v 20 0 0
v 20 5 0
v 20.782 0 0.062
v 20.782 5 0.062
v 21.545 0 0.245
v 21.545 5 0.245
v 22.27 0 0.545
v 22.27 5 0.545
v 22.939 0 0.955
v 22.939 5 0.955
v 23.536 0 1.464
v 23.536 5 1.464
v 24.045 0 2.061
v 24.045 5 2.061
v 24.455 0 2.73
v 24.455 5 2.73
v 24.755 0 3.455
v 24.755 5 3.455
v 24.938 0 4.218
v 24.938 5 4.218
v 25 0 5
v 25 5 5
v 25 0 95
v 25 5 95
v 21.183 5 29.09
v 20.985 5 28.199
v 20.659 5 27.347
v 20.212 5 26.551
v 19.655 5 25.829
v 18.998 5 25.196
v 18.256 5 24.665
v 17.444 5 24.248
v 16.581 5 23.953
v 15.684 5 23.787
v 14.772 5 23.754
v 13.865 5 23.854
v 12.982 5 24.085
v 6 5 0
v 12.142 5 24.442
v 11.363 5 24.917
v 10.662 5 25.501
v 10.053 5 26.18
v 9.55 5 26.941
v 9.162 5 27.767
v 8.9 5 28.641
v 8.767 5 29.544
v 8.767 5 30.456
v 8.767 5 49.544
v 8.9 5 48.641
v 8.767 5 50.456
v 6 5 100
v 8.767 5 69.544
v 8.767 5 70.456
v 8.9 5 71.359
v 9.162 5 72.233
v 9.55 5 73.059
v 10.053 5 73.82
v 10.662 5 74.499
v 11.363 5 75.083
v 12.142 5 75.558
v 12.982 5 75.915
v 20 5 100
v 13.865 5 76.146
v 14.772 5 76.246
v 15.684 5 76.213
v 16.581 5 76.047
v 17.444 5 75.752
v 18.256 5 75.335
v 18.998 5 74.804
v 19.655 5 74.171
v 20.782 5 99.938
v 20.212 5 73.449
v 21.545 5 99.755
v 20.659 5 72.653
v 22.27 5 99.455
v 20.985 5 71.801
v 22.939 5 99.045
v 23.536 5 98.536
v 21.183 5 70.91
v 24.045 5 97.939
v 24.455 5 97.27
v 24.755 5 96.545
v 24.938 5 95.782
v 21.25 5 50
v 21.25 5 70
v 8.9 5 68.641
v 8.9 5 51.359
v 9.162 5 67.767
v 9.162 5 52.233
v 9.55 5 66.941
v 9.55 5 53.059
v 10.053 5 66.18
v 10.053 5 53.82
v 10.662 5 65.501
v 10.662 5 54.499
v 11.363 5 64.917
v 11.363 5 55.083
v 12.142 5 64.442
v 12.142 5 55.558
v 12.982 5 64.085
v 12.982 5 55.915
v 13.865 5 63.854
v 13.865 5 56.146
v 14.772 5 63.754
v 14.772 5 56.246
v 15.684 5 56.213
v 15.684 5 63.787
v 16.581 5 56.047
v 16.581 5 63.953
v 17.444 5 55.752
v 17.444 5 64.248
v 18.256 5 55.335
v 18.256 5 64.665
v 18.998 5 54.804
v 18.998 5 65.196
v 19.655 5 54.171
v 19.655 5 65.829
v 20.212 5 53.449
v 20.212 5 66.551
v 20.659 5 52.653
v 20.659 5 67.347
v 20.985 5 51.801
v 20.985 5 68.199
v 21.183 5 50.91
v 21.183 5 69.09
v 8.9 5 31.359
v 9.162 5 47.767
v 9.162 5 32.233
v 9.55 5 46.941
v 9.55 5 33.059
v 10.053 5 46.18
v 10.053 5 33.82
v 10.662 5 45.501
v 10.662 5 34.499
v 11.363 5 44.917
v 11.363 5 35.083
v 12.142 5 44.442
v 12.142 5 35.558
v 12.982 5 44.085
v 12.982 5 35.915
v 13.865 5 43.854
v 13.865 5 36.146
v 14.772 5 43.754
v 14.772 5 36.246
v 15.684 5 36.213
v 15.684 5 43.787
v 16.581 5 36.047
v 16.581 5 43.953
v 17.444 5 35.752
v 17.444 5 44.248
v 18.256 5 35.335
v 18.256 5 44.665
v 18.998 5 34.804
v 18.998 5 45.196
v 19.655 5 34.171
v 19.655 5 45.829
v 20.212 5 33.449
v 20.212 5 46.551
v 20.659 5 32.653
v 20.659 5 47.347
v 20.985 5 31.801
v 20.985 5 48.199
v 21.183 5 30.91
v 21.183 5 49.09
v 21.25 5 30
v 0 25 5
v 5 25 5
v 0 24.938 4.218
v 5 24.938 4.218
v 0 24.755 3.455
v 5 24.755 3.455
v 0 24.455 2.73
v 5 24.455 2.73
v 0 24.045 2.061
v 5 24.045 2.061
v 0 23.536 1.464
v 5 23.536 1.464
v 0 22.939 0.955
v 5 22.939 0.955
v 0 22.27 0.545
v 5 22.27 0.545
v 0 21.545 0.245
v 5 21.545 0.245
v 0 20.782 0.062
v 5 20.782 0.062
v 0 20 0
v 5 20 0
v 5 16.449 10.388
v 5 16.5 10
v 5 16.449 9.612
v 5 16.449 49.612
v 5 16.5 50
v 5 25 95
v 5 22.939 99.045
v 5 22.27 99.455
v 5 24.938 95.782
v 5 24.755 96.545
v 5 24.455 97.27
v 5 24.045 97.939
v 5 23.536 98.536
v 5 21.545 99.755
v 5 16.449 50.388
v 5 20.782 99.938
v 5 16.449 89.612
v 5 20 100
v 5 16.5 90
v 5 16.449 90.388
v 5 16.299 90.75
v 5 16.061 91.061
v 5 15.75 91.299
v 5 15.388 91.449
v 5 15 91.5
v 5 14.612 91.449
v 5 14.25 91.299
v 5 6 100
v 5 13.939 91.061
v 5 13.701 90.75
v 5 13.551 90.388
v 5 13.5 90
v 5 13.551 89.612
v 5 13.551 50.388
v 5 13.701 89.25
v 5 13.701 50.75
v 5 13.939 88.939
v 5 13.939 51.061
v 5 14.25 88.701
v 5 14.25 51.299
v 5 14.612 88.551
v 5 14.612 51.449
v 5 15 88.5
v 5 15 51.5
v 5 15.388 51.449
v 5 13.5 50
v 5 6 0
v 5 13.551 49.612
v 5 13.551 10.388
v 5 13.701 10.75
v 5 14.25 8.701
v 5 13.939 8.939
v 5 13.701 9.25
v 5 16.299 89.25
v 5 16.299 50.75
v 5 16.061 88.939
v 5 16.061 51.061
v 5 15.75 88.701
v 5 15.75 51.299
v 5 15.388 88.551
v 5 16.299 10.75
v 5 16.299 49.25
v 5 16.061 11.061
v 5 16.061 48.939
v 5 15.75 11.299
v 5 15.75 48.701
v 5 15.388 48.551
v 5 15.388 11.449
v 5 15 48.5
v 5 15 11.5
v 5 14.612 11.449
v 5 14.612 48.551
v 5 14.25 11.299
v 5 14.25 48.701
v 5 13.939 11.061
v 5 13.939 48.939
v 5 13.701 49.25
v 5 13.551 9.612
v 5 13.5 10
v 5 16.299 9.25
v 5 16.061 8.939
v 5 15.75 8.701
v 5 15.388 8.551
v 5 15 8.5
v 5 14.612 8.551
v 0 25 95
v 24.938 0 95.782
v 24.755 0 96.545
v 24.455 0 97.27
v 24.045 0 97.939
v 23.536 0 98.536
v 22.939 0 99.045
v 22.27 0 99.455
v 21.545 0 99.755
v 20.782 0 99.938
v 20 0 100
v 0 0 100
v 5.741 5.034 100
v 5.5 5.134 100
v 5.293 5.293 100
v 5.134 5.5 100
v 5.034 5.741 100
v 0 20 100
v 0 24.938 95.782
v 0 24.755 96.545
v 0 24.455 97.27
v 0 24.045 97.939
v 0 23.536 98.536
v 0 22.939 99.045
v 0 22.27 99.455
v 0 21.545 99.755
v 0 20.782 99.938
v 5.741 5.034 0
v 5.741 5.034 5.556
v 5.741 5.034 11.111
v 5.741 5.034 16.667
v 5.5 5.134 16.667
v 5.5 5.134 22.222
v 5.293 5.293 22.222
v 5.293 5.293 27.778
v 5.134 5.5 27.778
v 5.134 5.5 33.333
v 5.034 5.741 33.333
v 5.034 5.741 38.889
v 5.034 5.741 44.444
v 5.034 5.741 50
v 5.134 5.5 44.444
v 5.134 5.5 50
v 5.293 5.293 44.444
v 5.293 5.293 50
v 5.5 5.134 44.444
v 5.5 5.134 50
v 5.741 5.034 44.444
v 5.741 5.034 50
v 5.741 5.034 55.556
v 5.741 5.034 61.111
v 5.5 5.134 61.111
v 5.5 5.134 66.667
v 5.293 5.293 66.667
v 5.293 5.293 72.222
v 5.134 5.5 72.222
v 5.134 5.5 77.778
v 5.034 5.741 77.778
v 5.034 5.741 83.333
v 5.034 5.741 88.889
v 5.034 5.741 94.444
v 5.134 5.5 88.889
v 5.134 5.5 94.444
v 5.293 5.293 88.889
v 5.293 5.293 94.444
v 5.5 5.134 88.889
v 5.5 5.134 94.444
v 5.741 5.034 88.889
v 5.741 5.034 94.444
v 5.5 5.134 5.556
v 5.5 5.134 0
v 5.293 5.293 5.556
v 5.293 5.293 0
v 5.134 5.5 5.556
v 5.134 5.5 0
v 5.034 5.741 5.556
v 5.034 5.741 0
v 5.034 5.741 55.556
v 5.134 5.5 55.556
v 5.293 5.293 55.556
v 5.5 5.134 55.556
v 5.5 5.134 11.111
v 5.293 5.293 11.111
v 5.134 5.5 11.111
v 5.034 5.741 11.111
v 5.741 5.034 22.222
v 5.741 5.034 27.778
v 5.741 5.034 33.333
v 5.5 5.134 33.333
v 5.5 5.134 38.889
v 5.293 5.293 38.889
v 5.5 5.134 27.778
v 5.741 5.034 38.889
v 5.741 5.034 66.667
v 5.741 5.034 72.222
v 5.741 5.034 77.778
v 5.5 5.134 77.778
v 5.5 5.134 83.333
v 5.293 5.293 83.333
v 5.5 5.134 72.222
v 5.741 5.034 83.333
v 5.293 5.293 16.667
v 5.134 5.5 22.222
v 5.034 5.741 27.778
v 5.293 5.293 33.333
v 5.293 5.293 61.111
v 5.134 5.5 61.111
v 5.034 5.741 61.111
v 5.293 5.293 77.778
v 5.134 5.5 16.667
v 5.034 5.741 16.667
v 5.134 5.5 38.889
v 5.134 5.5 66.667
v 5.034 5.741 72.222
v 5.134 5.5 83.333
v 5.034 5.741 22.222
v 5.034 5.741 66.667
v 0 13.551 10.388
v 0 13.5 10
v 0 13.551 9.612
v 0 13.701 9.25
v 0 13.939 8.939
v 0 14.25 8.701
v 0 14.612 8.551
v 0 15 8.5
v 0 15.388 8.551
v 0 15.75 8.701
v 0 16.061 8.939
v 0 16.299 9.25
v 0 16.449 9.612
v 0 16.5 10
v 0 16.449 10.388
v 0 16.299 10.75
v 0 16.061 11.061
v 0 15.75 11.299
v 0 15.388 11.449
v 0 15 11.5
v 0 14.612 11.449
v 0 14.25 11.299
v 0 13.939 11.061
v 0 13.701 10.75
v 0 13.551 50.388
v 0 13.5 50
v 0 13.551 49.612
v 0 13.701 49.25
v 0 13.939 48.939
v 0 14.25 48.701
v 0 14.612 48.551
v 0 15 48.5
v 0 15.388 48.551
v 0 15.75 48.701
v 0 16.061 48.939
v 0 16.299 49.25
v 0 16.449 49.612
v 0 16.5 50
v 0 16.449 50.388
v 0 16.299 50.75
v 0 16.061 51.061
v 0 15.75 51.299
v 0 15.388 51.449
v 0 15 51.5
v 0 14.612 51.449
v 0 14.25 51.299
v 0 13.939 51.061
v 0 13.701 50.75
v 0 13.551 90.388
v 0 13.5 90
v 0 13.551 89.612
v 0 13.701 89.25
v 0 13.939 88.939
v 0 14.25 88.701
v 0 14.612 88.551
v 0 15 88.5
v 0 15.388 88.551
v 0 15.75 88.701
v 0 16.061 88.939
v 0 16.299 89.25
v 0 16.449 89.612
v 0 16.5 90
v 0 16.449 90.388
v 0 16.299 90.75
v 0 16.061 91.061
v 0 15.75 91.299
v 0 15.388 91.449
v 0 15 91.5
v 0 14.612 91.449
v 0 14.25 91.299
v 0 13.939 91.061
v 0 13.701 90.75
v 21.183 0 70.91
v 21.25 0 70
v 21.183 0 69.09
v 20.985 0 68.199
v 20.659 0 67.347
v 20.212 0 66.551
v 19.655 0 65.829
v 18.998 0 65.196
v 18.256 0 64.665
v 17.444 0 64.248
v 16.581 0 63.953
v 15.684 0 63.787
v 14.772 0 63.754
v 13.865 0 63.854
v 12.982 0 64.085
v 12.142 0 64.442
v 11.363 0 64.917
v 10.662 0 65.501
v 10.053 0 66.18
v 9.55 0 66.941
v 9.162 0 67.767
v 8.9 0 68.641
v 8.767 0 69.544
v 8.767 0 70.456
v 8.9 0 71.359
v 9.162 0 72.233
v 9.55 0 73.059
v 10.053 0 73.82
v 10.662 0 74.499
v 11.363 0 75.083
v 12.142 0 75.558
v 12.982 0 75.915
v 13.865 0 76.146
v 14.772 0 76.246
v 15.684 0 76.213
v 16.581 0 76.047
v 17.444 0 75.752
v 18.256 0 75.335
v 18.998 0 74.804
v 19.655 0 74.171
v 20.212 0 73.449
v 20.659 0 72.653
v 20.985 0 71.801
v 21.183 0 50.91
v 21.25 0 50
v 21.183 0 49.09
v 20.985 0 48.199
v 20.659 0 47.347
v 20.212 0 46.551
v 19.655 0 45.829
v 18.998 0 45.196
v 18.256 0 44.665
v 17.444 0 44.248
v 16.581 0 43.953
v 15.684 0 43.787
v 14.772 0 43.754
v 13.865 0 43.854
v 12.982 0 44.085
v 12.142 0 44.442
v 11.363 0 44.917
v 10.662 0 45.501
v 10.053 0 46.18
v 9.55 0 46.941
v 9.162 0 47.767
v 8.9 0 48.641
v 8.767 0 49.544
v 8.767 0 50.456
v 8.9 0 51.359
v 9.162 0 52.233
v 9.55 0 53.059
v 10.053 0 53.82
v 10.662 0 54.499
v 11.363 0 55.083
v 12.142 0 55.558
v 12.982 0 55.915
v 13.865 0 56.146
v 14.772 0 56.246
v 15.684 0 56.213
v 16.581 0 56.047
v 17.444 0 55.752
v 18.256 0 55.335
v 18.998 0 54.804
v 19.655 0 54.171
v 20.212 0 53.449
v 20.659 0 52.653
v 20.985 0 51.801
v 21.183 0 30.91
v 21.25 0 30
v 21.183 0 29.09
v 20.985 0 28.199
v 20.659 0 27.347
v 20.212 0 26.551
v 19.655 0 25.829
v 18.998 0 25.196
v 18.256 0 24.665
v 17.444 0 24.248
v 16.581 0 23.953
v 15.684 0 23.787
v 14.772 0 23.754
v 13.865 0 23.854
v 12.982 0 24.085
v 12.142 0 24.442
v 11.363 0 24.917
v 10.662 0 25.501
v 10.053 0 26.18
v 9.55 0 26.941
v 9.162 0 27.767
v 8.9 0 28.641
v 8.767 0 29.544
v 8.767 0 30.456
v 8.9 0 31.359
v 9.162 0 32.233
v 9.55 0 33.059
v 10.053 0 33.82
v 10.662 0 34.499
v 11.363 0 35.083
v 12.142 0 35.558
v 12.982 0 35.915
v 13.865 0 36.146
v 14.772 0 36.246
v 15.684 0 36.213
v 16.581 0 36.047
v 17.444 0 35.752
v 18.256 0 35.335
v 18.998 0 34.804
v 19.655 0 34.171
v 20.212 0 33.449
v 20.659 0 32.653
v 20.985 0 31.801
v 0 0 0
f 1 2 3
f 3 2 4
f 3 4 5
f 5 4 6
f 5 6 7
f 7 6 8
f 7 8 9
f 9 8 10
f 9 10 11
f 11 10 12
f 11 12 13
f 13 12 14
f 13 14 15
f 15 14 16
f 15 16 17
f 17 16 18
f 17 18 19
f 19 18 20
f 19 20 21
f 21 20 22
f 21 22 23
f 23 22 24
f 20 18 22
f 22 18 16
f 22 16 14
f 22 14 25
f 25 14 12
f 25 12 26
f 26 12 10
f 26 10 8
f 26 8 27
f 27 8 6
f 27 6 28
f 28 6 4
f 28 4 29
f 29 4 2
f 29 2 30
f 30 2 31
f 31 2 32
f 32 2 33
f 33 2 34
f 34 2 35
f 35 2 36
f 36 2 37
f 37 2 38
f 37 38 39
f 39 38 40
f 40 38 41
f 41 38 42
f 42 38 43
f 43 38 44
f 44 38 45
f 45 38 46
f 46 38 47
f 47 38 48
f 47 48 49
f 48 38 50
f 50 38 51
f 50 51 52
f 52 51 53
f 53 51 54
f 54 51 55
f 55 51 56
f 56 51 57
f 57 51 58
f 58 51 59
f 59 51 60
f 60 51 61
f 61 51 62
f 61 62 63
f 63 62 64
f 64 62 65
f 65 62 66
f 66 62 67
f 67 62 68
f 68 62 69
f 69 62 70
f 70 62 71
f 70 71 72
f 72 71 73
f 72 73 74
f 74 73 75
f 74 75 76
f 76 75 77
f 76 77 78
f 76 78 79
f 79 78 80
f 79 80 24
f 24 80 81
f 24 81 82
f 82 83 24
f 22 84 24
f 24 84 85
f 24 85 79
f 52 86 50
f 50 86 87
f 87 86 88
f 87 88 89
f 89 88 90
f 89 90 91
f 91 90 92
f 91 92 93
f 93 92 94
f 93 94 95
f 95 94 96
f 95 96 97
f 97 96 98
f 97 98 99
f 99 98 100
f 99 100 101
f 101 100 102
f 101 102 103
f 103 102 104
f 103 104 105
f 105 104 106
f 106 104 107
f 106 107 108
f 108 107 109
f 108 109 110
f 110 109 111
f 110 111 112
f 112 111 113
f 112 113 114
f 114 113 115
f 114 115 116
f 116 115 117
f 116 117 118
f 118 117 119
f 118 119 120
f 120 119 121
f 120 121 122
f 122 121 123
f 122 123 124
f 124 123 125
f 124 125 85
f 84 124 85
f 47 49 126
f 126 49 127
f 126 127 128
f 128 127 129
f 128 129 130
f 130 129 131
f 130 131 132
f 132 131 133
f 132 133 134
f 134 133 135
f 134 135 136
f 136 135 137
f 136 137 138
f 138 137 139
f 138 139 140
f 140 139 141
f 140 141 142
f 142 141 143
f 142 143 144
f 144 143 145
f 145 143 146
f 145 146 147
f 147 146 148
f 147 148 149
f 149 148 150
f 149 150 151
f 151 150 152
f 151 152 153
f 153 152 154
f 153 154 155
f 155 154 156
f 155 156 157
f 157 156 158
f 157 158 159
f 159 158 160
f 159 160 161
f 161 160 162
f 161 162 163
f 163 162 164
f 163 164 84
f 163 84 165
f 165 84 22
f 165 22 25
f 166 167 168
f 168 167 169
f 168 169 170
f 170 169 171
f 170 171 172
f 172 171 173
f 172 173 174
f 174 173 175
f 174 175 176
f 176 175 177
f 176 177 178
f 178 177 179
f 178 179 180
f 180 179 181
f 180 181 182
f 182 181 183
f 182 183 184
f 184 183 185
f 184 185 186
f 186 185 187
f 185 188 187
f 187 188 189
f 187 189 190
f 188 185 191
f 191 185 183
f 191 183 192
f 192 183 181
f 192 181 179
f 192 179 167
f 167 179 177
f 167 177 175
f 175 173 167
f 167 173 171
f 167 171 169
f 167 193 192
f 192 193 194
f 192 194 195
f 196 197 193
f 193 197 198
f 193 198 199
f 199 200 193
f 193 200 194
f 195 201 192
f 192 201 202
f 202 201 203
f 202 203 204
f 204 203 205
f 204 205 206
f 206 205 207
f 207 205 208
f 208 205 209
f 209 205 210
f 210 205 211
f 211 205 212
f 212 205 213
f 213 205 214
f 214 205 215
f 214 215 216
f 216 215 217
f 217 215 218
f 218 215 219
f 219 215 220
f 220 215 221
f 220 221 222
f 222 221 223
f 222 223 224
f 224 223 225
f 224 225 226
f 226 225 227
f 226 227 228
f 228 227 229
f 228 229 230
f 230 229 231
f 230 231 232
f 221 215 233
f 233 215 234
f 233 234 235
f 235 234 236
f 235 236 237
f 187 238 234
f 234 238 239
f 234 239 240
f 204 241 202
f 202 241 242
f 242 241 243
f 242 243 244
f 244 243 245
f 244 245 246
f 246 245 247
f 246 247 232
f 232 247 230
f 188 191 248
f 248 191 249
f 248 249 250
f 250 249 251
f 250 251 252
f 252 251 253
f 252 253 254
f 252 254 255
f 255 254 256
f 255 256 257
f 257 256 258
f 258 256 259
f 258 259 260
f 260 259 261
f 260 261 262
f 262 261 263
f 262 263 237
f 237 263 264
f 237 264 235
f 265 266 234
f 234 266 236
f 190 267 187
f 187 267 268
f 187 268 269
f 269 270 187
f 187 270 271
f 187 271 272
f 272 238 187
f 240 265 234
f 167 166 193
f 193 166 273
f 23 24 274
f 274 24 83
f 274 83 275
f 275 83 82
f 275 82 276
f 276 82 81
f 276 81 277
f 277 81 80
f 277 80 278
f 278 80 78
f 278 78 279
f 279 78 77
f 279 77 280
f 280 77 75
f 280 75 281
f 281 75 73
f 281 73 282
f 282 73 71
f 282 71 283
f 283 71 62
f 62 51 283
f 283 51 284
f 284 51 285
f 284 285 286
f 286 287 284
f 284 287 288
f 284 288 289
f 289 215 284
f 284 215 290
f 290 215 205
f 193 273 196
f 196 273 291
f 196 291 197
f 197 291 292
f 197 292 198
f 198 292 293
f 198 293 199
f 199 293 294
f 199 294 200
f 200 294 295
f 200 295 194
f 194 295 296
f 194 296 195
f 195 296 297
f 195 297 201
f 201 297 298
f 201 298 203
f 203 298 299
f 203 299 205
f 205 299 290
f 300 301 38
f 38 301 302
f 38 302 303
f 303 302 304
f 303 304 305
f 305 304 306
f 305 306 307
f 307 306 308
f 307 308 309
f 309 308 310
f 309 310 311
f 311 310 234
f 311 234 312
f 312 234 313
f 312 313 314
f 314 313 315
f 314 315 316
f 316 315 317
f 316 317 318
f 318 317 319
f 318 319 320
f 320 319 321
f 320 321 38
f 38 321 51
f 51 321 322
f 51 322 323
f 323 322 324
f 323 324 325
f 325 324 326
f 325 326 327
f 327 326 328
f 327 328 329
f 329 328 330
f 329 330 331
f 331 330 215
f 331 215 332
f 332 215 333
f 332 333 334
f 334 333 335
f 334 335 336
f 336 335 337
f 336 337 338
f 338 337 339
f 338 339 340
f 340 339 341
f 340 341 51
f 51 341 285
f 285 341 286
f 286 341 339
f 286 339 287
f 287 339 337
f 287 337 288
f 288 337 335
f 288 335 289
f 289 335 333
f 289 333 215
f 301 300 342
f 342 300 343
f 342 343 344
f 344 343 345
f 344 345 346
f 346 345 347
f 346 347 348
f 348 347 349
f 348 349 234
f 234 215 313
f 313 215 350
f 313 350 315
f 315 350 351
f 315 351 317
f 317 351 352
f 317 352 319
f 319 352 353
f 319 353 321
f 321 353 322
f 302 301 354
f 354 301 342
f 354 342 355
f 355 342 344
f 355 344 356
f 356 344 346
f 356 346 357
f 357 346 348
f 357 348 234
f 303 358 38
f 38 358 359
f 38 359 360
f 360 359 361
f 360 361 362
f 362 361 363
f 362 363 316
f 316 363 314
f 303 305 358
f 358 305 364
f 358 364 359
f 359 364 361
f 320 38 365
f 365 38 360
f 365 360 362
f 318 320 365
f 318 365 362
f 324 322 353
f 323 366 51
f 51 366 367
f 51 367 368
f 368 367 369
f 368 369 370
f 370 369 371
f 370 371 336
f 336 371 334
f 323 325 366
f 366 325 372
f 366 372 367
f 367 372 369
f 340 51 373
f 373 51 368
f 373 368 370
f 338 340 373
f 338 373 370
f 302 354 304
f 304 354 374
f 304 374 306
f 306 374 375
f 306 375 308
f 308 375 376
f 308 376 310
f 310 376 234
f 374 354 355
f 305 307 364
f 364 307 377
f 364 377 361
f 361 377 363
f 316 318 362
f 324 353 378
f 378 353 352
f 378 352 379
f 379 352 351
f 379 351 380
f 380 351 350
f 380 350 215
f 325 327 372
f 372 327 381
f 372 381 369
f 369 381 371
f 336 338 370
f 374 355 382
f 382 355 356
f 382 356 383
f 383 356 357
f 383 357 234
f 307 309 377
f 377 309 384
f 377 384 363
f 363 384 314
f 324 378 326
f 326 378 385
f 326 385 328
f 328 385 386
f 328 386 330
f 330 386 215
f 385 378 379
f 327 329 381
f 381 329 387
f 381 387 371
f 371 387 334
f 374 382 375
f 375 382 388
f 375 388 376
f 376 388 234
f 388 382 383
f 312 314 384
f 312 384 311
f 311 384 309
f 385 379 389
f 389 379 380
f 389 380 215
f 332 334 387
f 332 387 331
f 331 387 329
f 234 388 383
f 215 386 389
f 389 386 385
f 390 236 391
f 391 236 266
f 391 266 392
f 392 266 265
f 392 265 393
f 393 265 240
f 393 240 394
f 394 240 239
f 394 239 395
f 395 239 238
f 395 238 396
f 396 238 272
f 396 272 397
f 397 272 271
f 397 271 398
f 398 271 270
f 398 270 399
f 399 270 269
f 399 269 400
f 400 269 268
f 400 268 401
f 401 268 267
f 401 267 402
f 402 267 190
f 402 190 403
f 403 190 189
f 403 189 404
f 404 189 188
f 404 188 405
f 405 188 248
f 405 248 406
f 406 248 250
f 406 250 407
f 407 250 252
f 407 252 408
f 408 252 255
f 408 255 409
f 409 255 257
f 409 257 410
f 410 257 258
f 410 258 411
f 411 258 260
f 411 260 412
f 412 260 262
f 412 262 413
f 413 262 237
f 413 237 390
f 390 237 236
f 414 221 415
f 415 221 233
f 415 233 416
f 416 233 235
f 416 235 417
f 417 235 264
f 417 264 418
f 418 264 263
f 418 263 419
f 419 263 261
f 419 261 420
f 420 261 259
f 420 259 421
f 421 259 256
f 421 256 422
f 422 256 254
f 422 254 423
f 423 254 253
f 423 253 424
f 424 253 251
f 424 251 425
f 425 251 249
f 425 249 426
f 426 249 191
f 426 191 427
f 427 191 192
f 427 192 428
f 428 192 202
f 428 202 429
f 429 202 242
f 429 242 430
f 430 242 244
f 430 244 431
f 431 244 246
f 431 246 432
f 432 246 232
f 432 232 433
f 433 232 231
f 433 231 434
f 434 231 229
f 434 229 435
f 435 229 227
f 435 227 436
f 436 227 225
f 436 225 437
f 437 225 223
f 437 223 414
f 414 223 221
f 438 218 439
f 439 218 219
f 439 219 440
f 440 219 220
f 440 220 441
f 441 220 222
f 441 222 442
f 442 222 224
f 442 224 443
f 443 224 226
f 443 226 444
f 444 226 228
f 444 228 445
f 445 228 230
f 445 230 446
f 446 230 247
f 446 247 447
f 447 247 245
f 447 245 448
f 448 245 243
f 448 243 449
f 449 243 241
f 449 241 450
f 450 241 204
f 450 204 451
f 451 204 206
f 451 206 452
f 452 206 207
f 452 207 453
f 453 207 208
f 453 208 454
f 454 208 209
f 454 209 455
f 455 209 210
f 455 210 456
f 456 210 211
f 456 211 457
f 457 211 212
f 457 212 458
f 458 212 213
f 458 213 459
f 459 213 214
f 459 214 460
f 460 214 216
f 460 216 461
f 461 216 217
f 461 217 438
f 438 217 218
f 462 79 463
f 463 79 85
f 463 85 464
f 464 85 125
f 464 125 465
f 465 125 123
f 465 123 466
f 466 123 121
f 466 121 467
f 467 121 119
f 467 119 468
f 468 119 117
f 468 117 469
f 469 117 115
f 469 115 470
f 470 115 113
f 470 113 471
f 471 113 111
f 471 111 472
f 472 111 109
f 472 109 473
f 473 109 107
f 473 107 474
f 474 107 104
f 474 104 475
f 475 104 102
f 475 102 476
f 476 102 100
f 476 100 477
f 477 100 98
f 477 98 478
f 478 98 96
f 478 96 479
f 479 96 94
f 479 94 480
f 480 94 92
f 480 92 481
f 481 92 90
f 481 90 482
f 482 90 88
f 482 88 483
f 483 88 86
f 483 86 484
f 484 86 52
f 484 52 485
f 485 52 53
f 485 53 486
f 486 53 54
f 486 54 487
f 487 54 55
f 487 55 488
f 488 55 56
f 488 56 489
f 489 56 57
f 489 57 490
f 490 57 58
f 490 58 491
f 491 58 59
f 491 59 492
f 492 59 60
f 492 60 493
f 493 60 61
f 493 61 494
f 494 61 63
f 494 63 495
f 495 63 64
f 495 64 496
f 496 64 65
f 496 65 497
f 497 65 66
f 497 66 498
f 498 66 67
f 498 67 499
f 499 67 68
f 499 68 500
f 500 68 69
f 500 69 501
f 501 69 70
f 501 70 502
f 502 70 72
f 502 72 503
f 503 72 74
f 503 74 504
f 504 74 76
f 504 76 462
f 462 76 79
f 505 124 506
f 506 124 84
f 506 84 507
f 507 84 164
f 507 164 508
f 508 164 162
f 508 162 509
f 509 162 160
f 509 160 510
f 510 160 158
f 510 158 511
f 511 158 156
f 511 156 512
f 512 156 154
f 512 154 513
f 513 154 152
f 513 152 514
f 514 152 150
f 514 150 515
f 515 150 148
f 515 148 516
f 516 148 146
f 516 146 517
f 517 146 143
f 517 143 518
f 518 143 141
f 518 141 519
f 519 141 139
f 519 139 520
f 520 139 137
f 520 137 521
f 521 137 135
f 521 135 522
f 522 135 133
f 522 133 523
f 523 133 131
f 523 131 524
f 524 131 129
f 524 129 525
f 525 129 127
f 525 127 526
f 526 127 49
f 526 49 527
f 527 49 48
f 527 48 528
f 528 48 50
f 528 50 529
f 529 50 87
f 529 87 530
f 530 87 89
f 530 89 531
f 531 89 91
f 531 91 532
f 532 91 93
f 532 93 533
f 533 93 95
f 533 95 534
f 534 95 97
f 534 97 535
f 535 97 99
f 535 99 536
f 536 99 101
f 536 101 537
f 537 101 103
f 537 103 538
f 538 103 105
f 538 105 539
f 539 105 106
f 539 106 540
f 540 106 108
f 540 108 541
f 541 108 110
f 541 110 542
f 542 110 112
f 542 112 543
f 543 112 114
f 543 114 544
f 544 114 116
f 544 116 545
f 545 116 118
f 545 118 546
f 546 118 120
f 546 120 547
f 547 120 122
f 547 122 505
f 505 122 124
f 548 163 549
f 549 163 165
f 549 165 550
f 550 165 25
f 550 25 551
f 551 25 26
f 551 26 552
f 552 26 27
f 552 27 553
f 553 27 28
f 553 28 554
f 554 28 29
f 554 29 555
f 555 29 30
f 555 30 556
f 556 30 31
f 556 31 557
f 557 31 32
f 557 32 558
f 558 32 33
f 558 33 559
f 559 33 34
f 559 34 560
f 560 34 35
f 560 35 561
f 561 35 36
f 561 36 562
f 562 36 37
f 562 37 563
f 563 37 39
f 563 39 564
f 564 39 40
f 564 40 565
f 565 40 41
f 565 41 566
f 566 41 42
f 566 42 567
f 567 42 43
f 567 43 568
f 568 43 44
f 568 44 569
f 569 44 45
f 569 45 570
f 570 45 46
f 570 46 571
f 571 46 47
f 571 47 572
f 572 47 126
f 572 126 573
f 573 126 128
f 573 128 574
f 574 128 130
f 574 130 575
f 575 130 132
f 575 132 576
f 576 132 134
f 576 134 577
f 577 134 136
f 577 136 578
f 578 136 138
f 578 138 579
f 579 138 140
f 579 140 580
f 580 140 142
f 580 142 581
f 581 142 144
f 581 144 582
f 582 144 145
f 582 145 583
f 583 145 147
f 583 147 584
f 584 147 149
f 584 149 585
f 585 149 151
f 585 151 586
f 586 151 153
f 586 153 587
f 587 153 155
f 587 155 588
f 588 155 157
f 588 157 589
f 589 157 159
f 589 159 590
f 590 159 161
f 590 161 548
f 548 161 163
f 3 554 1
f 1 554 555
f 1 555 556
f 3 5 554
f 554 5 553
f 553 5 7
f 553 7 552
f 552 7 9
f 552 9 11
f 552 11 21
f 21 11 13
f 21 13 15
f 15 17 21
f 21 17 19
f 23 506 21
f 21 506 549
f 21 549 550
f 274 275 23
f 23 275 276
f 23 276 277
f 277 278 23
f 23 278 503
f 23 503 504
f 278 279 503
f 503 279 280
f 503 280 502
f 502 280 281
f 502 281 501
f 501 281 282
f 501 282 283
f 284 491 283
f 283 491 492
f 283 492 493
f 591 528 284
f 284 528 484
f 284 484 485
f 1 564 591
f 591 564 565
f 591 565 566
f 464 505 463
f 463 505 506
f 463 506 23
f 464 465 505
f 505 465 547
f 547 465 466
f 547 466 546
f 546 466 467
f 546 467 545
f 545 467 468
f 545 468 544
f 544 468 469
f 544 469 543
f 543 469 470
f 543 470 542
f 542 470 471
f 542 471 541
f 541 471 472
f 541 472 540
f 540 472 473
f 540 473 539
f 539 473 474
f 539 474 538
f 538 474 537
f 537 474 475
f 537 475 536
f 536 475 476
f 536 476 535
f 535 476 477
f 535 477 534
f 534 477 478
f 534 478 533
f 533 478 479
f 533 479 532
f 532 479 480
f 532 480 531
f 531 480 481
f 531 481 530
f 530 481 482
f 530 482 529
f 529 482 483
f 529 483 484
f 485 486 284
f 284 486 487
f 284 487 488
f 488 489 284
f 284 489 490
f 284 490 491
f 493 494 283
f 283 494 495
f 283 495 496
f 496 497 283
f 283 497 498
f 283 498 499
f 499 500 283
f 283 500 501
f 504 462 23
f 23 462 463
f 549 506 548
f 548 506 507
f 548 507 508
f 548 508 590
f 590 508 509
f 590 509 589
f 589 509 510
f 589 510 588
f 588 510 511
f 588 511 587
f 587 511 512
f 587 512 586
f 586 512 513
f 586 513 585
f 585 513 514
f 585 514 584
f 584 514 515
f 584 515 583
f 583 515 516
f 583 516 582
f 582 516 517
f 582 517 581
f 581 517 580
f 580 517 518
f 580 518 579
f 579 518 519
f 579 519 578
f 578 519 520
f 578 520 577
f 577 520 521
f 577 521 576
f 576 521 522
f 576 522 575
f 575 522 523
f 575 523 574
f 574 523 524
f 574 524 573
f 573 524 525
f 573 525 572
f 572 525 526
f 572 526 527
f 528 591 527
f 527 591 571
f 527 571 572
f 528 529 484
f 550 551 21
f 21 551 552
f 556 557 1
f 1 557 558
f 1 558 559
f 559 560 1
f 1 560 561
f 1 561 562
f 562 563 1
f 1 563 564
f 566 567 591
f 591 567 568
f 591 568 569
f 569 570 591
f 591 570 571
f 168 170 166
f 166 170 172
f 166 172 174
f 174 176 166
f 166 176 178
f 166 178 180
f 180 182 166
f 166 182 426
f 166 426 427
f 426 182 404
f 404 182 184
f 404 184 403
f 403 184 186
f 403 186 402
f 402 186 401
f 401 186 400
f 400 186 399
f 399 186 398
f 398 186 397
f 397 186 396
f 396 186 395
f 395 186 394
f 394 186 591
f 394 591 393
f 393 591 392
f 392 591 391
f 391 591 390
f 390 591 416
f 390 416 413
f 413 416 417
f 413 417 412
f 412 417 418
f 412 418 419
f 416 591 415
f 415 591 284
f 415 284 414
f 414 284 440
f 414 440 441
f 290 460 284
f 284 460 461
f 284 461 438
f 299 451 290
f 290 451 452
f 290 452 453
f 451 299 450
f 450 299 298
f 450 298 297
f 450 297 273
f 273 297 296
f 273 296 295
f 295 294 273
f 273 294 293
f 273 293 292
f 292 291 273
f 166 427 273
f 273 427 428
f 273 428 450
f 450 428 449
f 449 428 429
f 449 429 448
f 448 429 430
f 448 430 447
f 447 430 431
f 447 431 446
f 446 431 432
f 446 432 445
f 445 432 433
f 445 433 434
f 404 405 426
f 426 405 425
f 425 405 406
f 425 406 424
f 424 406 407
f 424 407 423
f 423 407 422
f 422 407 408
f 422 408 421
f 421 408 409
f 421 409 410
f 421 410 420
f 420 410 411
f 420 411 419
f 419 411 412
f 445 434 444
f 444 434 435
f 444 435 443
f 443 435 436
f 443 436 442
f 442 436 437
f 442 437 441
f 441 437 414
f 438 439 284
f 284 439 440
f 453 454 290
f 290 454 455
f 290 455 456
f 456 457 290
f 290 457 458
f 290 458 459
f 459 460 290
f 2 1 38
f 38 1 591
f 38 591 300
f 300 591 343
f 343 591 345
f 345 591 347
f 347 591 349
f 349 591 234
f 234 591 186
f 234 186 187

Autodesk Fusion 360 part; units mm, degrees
sketch "Sketch1" plane through (0, 0, 0) normal (0, 0, 1) x (1, 0, 0)
  line L0 (0, 25) -> (5, 25)
  line L1 (5, 25) -> (5, 5)
  line L2 (5, 0) -> (0, 0)
  line L3 (0, 0) -> (0, 25)
  line L4 (0, 0) -> (25, 0)
  line L5 (25, 0) -> (25, 5)
  line L6 (25, 5) -> (5, 5)
  line L7 (0, 5) -> (0, 0)
  dimension "d1" = 5
  dimension "d6" = 5
  dimension "d7" = 25
  dimension "d8" = 25
extrude "Extrude1" add sketch "Sketch1" along normal blind 100
sketch "Sketch2" plane through (0, 5, 0) normal (0, 1, 0) x (-1, 0, 0)
  line L0 (-25, 0) -> (-5, 0)
  line L1 (-5, 0) -> (-5, 100)
  line L2 (-5, 100) -> (-25, 100)
  line L3 (-25, 100) -> (-25, 0)
  circle A0 centre (-15, 70) radius 6.25
  circle A1 centre (-15, 50) radius 6.25
  circle A2 centre (-15, 30) radius 6.25
  line L4 (0, 0) -> (0, 100)
  dimension "d12" = 12.5
  dimension "d13" = 12.5
  dimension "d14" = 12.5
  dimension "d15" = 20
  dimension "d16" = 20
  dimension "d17" = 30
  dimension "d19" = 10
  dimension "d20" = 10
  dimension "d21" = 10
  dimension "d22" = 30
  dimension "d48" = 15
extrude "Extrude2" cut sketch "Sketch2" against normal blind 10 contours A0 | A1 | A2
sketch "Sketch3" plane through (5, 0, 0) normal (1, 0, 0) x (0, 1, 0)
  line L0 (5, 0) -> (25, 0)
  line L1 (25, 0) -> (25, 100)
  line L2 (25, 100) -> (5, 100)
  line L3 (5, 100) -> (5, 0)
  circle A0 centre (15, 10) radius 1.5
  circle A1 centre (15, 50) radius 1.5
  circle A2 centre (15, 90) radius 1.5
  dimension "d25" = 3
  dimension "d26" = 3
  dimension "d27" = 3
  dimension "d28" = 10
  dimension "d29" = 40
  dimension "d30" = 40
  dimension "d32" = 10
  dimension "d33" = 10
  dimension "d34" = 10
  dimension "d35" = 10
extrude "Extrude3" cut sketch "Sketch3" against normal blind 10 contours A0 | A1 | A2
fillet "Fillet1" radius 1 1 edges at (5, 5, 50)
fillet "Fillet2" radius 5 1 edges at (2.5, 25, 100)
fillet "Fillet3" radius 5 1 edges at (25, 2.5, 100)
fillet "Fillet4" radius 5 1 edges at (2.5, 25, 0)
fillet "Fillet5" radius 5 1 edges at (25, 2.5, 0)
